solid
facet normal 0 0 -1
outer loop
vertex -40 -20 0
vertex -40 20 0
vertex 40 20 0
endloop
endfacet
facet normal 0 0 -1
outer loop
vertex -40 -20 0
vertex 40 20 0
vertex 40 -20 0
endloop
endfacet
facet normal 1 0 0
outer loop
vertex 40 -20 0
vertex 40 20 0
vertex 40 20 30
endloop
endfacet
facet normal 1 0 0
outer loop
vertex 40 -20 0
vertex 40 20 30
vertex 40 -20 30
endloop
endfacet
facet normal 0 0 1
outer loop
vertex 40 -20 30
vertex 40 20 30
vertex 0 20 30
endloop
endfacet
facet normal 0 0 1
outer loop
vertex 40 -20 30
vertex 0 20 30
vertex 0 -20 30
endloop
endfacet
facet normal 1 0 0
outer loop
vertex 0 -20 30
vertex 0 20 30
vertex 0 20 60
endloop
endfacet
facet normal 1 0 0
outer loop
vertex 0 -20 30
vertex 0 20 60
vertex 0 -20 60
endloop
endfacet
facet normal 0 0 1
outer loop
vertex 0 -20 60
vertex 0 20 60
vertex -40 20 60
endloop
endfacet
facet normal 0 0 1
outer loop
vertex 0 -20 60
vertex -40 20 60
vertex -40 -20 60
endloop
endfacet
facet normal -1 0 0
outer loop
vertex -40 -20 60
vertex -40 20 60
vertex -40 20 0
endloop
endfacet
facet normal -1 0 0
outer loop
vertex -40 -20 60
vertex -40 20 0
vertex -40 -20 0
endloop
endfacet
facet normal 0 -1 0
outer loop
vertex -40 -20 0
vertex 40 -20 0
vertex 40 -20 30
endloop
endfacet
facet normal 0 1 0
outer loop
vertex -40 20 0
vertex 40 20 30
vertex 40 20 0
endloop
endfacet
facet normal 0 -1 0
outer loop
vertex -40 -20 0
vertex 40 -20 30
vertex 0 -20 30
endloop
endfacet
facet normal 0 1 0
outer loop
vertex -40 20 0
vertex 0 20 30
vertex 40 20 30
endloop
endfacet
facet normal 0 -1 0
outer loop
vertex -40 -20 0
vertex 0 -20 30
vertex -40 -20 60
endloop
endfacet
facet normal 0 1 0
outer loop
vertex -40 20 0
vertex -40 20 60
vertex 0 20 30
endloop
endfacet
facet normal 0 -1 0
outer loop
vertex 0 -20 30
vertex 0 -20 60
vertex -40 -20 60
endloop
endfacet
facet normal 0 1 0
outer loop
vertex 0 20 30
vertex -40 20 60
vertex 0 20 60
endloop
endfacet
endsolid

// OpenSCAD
// file: _common.scad
// orthographic 共用尺寸 / 解析度設定
// 所有物件外接立方控制在 ~80 mm，方便相機固定縮放
$fn = 64;  // 圓面解析度（影響 STL 大小，64 在視覺與大小取得平衡）
CHAMFER = 1.2;  // 標準導角尺寸
// main file
// 階梯塊：下層 80×40×30 + 上層 40×40×30（疊在下層左半），與三視圖首頁主圖同一件
// 正視(XZ) = 左高右低的階梯 L 形；俯視(XY) = 矩形，x=0 有高低分界線；
// 右側視(YZ) = 矩形，z=30 有上下兩個右面的分界線
include <_common.scad>

union() {
  // 下層：x∈[-40,40]  y∈[-20,20]  z∈[0,30]
  translate([-40, -20, 0]) cube([80, 40, 30]);
  // 上層：x∈[-40,0]   y∈[-20,20]  z∈[30,60]
  translate([-40, -20, 30]) cube([40, 40, 30]);
}
